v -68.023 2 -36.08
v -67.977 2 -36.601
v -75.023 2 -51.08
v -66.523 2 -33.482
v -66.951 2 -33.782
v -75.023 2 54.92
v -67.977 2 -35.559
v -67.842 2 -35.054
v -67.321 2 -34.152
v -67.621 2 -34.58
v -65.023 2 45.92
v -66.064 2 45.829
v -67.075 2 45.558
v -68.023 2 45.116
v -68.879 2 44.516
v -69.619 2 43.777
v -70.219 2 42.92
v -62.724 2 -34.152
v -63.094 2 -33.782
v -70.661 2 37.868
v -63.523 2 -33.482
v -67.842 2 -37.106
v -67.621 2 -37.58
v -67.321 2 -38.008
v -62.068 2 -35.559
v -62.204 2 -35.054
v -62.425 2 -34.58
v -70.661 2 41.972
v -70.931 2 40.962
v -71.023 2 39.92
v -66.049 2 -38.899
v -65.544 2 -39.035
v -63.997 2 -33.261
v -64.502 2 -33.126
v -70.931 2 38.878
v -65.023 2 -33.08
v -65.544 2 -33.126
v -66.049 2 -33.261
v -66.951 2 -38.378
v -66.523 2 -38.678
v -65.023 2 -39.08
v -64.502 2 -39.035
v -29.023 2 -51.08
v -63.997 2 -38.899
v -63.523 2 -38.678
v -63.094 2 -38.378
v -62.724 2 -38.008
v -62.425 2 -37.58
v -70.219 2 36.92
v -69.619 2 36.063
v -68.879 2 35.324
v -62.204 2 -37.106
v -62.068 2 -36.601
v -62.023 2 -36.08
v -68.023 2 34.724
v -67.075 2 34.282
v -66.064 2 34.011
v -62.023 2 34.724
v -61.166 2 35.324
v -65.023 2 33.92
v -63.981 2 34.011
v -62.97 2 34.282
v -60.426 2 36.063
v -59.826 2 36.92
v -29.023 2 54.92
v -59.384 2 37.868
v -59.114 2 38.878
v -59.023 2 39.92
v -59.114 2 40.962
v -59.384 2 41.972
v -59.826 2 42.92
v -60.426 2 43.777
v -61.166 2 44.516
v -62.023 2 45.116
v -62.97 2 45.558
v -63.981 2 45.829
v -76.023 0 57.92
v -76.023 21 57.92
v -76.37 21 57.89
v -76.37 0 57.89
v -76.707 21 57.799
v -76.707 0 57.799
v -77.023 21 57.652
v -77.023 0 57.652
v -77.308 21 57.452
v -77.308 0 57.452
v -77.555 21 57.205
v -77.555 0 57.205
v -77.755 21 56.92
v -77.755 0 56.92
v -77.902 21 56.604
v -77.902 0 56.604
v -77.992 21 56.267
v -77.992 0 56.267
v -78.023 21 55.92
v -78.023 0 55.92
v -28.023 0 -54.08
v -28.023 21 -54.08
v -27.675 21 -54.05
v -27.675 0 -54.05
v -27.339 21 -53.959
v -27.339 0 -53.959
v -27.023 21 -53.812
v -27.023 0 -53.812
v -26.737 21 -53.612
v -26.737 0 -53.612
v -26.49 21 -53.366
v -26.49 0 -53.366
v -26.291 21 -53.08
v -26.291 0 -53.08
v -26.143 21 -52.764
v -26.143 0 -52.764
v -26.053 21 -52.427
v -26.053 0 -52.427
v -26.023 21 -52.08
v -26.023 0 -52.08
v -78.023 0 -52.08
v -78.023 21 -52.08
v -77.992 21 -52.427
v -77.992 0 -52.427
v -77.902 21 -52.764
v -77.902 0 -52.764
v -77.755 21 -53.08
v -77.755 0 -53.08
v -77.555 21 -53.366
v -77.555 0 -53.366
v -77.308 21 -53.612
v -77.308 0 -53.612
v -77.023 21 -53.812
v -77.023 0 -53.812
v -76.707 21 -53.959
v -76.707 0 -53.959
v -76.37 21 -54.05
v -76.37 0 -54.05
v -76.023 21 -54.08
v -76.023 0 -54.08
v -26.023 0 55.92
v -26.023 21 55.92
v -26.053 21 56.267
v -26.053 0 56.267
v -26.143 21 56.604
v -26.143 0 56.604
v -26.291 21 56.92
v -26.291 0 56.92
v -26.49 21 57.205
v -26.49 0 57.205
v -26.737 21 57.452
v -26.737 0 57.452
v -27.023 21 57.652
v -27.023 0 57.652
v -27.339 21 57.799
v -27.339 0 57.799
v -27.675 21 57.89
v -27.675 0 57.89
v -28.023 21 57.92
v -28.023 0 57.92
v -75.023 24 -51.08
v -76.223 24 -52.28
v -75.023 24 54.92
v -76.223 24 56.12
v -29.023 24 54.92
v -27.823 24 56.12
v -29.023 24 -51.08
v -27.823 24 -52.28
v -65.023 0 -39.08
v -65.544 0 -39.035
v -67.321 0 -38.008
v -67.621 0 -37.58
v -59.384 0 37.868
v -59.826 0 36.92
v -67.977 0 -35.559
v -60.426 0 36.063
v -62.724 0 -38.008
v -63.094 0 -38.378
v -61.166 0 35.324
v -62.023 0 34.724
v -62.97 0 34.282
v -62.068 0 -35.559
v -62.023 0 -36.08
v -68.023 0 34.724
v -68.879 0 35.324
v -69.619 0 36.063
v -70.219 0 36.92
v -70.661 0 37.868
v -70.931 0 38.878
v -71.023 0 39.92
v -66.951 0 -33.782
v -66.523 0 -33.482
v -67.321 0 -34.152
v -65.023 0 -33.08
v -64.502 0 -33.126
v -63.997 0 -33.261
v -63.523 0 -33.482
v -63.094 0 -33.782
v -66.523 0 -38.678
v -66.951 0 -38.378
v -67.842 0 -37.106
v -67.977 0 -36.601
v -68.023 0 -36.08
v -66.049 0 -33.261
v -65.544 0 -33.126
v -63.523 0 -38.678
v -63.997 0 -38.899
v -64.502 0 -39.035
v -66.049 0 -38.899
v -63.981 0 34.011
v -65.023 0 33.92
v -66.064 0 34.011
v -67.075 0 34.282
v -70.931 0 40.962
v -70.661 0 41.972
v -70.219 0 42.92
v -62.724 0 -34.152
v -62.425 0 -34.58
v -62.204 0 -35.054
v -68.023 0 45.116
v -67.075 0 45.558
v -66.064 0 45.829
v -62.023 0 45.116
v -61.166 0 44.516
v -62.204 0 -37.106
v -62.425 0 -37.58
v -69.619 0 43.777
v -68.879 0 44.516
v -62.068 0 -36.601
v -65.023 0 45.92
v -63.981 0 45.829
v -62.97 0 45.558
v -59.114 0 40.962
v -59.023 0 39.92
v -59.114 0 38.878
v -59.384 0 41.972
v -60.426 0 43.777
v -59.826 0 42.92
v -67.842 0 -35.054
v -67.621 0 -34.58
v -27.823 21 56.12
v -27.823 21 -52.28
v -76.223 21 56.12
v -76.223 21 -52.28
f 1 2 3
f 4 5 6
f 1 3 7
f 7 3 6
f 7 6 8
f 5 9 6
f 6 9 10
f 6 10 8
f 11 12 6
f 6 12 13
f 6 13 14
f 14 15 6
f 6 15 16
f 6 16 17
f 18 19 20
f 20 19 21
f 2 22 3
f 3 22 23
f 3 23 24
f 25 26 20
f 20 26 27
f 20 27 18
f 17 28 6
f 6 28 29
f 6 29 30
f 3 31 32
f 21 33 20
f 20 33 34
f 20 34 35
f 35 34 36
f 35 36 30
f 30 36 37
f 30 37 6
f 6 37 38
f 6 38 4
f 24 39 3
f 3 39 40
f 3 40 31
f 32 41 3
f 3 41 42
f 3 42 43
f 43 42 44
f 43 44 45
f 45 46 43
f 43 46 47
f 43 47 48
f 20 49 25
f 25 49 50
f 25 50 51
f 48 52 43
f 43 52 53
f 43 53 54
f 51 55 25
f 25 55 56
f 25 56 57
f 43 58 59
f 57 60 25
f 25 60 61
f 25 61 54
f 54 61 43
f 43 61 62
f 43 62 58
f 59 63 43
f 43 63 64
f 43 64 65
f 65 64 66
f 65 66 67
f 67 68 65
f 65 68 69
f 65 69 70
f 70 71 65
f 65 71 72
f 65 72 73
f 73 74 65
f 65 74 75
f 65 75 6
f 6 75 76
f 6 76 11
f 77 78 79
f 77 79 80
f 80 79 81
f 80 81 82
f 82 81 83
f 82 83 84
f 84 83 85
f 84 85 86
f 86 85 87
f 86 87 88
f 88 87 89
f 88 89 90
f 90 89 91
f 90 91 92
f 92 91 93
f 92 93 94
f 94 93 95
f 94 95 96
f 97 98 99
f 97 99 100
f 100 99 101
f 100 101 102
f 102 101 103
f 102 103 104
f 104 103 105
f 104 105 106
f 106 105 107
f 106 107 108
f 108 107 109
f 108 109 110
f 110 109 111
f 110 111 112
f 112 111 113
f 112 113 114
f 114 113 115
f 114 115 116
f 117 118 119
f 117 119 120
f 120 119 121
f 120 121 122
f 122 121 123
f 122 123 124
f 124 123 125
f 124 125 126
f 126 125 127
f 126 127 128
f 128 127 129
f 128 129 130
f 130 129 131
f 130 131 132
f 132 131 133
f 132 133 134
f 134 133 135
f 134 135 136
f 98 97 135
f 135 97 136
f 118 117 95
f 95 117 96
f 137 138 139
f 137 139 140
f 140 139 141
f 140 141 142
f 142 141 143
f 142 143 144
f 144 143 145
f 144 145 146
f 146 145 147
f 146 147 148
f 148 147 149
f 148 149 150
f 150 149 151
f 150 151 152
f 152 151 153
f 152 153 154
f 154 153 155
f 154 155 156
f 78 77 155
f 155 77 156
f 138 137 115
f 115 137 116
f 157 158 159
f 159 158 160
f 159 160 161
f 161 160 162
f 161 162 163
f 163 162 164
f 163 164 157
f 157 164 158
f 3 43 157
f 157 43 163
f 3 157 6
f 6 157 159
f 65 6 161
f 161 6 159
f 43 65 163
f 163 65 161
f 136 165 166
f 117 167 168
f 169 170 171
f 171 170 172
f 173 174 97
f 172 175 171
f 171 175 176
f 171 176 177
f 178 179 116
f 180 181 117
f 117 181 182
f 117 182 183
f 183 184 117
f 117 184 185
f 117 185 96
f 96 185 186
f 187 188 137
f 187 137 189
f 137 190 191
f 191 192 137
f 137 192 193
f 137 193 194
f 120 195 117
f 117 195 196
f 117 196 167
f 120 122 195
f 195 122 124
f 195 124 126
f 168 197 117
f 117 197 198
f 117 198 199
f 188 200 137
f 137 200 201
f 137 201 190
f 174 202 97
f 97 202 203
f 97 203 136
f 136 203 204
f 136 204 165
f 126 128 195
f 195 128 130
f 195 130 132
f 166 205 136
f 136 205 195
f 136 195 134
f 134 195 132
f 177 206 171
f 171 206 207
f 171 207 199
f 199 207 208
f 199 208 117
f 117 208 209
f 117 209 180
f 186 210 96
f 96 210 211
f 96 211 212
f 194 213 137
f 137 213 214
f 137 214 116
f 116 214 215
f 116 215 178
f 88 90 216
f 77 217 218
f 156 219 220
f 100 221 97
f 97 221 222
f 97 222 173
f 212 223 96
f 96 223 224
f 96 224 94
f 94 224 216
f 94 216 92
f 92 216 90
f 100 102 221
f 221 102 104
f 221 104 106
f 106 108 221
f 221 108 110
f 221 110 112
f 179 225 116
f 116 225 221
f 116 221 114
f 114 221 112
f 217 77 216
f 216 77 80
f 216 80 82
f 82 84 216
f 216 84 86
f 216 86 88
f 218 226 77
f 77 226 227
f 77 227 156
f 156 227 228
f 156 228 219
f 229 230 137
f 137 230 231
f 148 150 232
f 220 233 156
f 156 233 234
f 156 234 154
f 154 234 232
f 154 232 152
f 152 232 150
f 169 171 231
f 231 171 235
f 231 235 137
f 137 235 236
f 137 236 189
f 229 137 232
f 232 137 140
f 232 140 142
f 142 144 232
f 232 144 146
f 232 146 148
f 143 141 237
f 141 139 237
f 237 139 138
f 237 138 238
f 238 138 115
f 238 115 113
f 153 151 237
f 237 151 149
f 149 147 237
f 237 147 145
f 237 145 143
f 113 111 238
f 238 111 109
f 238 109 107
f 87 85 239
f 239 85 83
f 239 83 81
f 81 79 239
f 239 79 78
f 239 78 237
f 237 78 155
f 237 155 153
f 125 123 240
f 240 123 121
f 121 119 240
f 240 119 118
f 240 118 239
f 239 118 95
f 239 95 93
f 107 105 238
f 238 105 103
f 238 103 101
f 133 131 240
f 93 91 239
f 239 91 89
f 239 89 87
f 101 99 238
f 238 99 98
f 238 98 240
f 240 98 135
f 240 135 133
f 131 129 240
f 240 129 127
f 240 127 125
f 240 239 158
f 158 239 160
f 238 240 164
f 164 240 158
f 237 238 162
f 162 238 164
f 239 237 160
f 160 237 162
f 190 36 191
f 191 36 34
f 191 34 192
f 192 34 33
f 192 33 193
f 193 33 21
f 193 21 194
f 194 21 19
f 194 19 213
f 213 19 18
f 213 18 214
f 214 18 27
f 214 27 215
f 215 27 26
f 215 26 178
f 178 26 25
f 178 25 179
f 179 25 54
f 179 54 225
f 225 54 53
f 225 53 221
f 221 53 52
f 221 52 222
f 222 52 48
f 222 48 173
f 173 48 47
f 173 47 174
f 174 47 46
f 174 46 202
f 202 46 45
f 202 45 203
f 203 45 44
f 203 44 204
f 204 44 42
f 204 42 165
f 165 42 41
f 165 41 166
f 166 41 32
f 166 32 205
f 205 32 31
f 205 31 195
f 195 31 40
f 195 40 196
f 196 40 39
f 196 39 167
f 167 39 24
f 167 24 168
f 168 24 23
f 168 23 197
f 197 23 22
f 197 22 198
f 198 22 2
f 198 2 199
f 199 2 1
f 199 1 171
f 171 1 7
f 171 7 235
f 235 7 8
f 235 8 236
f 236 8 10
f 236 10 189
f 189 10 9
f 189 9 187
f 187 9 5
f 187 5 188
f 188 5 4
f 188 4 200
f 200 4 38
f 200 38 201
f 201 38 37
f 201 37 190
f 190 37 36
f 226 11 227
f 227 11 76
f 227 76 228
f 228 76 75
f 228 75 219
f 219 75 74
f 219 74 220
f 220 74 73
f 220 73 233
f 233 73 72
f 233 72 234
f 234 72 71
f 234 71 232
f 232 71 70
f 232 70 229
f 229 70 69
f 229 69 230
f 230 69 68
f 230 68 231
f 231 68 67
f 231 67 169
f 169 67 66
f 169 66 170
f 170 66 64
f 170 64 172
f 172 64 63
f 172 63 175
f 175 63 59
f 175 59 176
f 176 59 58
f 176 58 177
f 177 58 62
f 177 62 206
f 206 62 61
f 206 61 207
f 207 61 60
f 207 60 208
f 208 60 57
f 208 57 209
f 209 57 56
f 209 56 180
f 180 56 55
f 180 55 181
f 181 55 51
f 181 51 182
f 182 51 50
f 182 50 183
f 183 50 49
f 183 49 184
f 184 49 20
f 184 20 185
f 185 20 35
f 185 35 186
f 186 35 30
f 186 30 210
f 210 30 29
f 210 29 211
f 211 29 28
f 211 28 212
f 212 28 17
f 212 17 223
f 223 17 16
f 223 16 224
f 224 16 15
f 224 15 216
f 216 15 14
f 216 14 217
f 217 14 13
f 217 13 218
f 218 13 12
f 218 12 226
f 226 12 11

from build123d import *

# Parameters (mm, degrees)
SKETCH1_W               = 50
SKETCH1_H               = 110
BOSS_EXTRUDE1_DEPTH     = 2
SKETCH2_W               = 50
SKETCH2_H               = 110
SKETCH2_W_2             = 46
SKETCH2_H_2             = 106
BOSS_EXTRUDE3_DEPTH     = 11
SKETCH3_R               = 1.2
BOSS_EXTRUDE4_DEPTH     = 11
SKETCH4_W               = 52
SKETCH4_H               = 112
SKETCH4_W_2             = 50
SKETCH4_H_2             = 110
EXTRUDE_THIN1_DEPTH     = 13
FILLET2_R               = 2
EXTRUDE_THIN3_DEPTH     = 3
SKETCH6_R               = 1.8
BOSS_EXTRUDE5_DEPTH     = 2.8
SKETCH8_W               = 8
SKETCH8_H               = 3.6
CUT_EXTRUDE2_DEPTH      = 12.8
SKETCH11_W              = 13.1
SKETCH11_H              = 5.8
CUT_EXTRUDE5_DEPTH      = 3
SKETCH12_W              = 70
SKETCH12_H              = 9.973266712
CUT_EXTRUDE6_DEPTH      = 130
SKETCH13_W              = 46
SKETCH13_H              = 106
CUT_EXTRUDE7_DEPTH      = 130
SKETCH15_W              = 46
SKETCH15_H              = 106
BOSS_EXTRUDE6_DEPTH     = 60
SKETCH16_W              = 71.739839436
SKETCH16_H              = 55.166081701
CUT_EXTRUDE8_DEPTH      = 130
SKETCH17_W              = 110.8
SKETCH17_H              = 170.8
SKETCH17_W_2            = 48.4
SKETCH17_H_2            = 108.4
CUT_EXTRUDE_THIN1_DEPTH = 3
SKETCH18_W              = 3
SKETCH18_H              = 13.1
BOSS_EXTRUDE7_DEPTH     = 7
SKETCH19_W              = 3
SKETCH19_H              = 8
BOSS_EXTRUDE8_DEPTH     = 4.5
SKETCH20_R              = 6
SKETCH20_R_2            = 3
CUT_EXTRUDE9_DEPTH      = 4.5


with BuildPart() as part:
    # Sketch1 → Boss-Extrude1 (new body)
    with BuildSketch(Plane(origin=(0, 0, 0), x_dir=(1, 0, 0), z_dir=(0, 1, 0))):
        with Locations((-52.022587269, -1.919917864)):
            Rectangle(SKETCH1_W, SKETCH1_H)
    extrude(amount=BOSS_EXTRUDE1_DEPTH)

    # Sketch2 → Boss-Extrude3 (add)
    with BuildSketch(Plane(origin=(0, 2, 0), x_dir=(1, 0, 0), z_dir=(0, 1, 0))):
        with Locations((-52.022587269, -1.919917864)):
            Rectangle(SKETCH2_W, SKETCH2_H)
        with Locations((-52.022587269, -1.919917864)):
            Rectangle(SKETCH2_W_2, SKETCH2_H_2, mode=Mode.SUBTRACT)
    extrude(amount=BOSS_EXTRUDE3_DEPTH)

    # Sketch3 → Boss-Extrude4 (add)
    with BuildSketch(Plane(origin=(0, 2, 0), x_dir=(1, 0, 0), z_dir=(0, 1, 0))):
        with Locations((-31.022587269, 42.380082136)):
            Circle(SKETCH3_R)
        with Locations((-31.022587269, -52.919917864)):
            Circle(SKETCH3_R)
        with Locations((-56.322587269, 42.380082136)):
            Circle(SKETCH3_R)
        with Locations((-56.322587269, -52.919917864)):
            Circle(SKETCH3_R)
    extrude(amount=BOSS_EXTRUDE4_DEPTH)

    # Sketch4 → Extrude-Thin1 (add)
    with BuildSketch(Plane(origin=(0, 13, 0), x_dir=(1, 0, 0), z_dir=(0, 1, 0))):
        with Locations((-52.022587269, -1.919917864)):
            Rectangle(SKETCH4_W, SKETCH4_H)
        with Locations((-52.022587269, -1.919917864)):
            Rectangle(SKETCH4_W_2, SKETCH4_H_2, mode=Mode.SUBTRACT)
    extrude(amount=-EXTRUDE_THIN1_DEPTH)

    # Fillet2
    fillet2_edges = [part.edges().sort_by_distance(p)[0] for p in [
        (-26.022587269, 6.5, -54.080082136),
        (-26.022587269, 6.5, 57.919917864),
        (-78.022587269, 6.5, 57.919917864),
        (-78.022587269, 6.5, -54.080082136),
    ]]
    fillet(fillet2_edges, radius=FILLET2_R)

    # Sketch5 → Extrude-Thin3 (add)
    with BuildSketch(Plane(origin=(0, 13, 0), x_dir=(1, 0, 0), z_dir=(0, 1, 0))):
        with BuildLine():
            Line((-28.022587269, 54.080082136), (-76.022587269, 54.080082136))
            ThreePointArc((-76.022587269, 54.080082136), (-77.436800831, 53.494295698), (-78.022587269, 52.080082136))
            Line((-78.022587269, 52.080082136), (-78.022587269, -55.919917864))
            ThreePointArc((-78.022587269, -55.919917864), (-77.436800831, -57.334131427), (-76.022587269, -57.919917864))
            Line((-76.022587269, -57.919917864), (-28.022587269, -57.919917864))
            ThreePointArc((-28.022587269, -57.919917864), (-26.608373707, -57.334131427), (-26.022587269, -55.919917864))
            Line((-26.022587269, -55.919917864), (-26.022587269, 52.080082136))
            ThreePointArc((-26.022587269, 52.080082136), (-26.608373707, 53.494295698), (-28.022587269, 54.080082136))
        make_face()
        with BuildLine():
            Line((-28.022587269, 52.880082136), (-76.022587269, 52.880082136))
            ThreePointArc((-76.022587269, 52.880082136), (-76.588272694, 52.64576756), (-76.822587269, 52.080082136))
            Line((-76.822587269, 52.080082136), (-76.822587269, -55.919917864))
            ThreePointArc((-76.822587269, -55.919917864), (-76.588272694, -56.485603289), (-76.022587269, -56.719917864))
            Line((-76.022587269, -56.719917864), (-28.022587269, -56.719917864))
            ThreePointArc((-28.022587269, -56.719917864), (-27.456901844, -56.485603289), (-27.222587269, -55.919917864))
            Line((-27.222587269, -55.919917864), (-27.222587269, 52.080082136))
            ThreePointArc((-27.222587269, 52.080082136), (-27.456901844, 52.64576756), (-28.022587269, 52.880082136))
        make_face(mode=Mode.SUBTRACT)
    extrude(amount=EXTRUDE_THIN3_DEPTH)

    # Sketch6 → Boss-Extrude5 (add)
    with BuildSketch(Plane(origin=(0, 2, 0), x_dir=(1, 0, 0), z_dir=(0, 1, 0))):
        with Locations((-56.322587269, -52.919917864)):
            Circle(SKETCH6_R)
        with Locations((-31.022587269, -52.919917864)):
            Circle(SKETCH6_R)
        with Locations((-56.322587269, 42.380082136)):
            Circle(SKETCH6_R)
        with Locations((-31.022587269, 42.380082136)):
            Circle(SKETCH6_R)
    extrude(amount=BOSS_EXTRUDE5_DEPTH)

    # Sketch8 → Cut-Extrude2 (cut)
    with BuildSketch(Plane(origin=(-26.022587269, 0, 0), x_dir=(0, 0, -1), z_dir=(1, 0, 0))):
        with Locations((-44.619917864, 3.8)):
            Rectangle(SKETCH8_W, SKETCH8_H)
    extrude(amount=-CUT_EXTRUDE2_DEPTH, mode=Mode.SUBTRACT)

    # Sketch11 → Cut-Extrude5 (cut)
    with BuildSketch(Plane.ZY.offset(78.022587269)):
        with Locations((-43.530082136, 4.9)):
            Rectangle(SKETCH11_W, SKETCH11_H)
    extrude(amount=-CUT_EXTRUDE5_DEPTH, mode=Mode.SUBTRACT)

    # Sketch12 → Cut-Extrude6 (cut)
    with BuildSketch(Plane.XY.offset(57.919917864)):
        with Locations((-53.022587269, 15.377484965)):
            Rectangle(SKETCH12_W, SKETCH12_H)
    extrude(amount=-CUT_EXTRUDE6_DEPTH, mode=Mode.SUBTRACT)

    # Sketch13 → Cut-Extrude7 (cut)
    with BuildSketch(Plane(origin=(0, 2, 0), x_dir=(1, 0, 0), z_dir=(0, 1, 0))):
        with Locations((-52.022587269, -1.919917864)):
            Rectangle(SKETCH13_W, SKETCH13_H)
    extrude(amount=CUT_EXTRUDE7_DEPTH, mode=Mode.SUBTRACT)

    # Sketch15 → Boss-Extrude6 (add)
    with BuildSketch(Plane(origin=(0, 10.390851609, 0), x_dir=(1, 0, 0), z_dir=(0, 1, 0))):
        with BuildLine():
            Line((-76.022587269, -57.919917864), (-28.022587269, -57.919917864))
            ThreePointArc((-28.022587269, -57.919917864), (-26.608373707, -57.334131427), (-26.022587269, -55.919917864))
            Line((-26.022587269, -55.919917864), (-26.022587269, 52.080082136))
            ThreePointArc((-26.022587269, 52.080082136), (-26.608373707, 53.494295698), (-28.022587269, 54.080082136))
            Line((-28.022587269, 54.080082136), (-76.022587269, 54.080082136))
            ThreePointArc((-76.022587269, 54.080082136), (-77.436800831, 53.494295698), (-78.022587269, 52.080082136))
            Line((-78.022587269, 52.080082136), (-78.022587269, -55.919917864))
            ThreePointArc((-78.022587269, -55.919917864), (-77.436800831, -57.334131427), (-76.022587269, -57.919917864))
        make_face()
        with Locations((-52.022587269, -1.919917864)):
            Rectangle(SKETCH15_W, SKETCH15_H, mode=Mode.SUBTRACT)
    extrude(amount=BOSS_EXTRUDE6_DEPTH)

    # Sketch16 → Cut-Extrude8 (cut)
    with BuildSketch(Plane.XY.offset(57.919917864)):
        with Locations((-48.522353235, 51.583040851)):
            Rectangle(SKETCH16_W, SKETCH16_H)
    extrude(amount=-CUT_EXTRUDE8_DEPTH, mode=Mode.SUBTRACT)

    # Sketch17 → Cut-Extrude-Thin1 (cut)
    with BuildSketch(Plane(origin=(0, 24, 0), x_dir=(1, 0, 0), z_dir=(0, 1, 0))):
        with Locations((-52.022587269, -1.919917864)):
            Rectangle(SKETCH17_W, SKETCH17_H)
        with Locations((-52.022587269, -1.919917864)):
            Rectangle(SKETCH17_W_2, SKETCH17_H_2, mode=Mode.SUBTRACT)
    extrude(amount=-CUT_EXTRUDE_THIN1_DEPTH, mode=Mode.SUBTRACT)

    # Sketch18 → Boss-Extrude7 (add)
    with BuildSketch(Plane.XZ.offset(-7.8)):
        with Locations((-76.522587269, -43.530082136)):
            Rectangle(SKETCH18_W, SKETCH18_H)
    extrude(amount=BOSS_EXTRUDE7_DEPTH)

    # Sketch19 → Boss-Extrude8 (add)
    with BuildSketch(Plane.XZ.offset(-5.6)):
        with Locations((-27.522587269, 44.619917864)):
            Rectangle(SKETCH19_W, SKETCH19_H)
    extrude(amount=BOSS_EXTRUDE8_DEPTH)

    # Sketch20 → Cut-Extrude9 (cut)
    with BuildSketch(Plane(origin=(0, 2, 0), x_dir=(1, 0, 0), z_dir=(0, 1, 0))):
        with Locations((-65.022587269, -39.919917864)):
            Circle(SKETCH20_R)
        with Locations((-65.022587269, 36.080082136)):
            Circle(SKETCH20_R_2)
    extrude(amount=-CUT_EXTRUDE9_DEPTH, mode=Mode.SUBTRACT)


solid = part.part
